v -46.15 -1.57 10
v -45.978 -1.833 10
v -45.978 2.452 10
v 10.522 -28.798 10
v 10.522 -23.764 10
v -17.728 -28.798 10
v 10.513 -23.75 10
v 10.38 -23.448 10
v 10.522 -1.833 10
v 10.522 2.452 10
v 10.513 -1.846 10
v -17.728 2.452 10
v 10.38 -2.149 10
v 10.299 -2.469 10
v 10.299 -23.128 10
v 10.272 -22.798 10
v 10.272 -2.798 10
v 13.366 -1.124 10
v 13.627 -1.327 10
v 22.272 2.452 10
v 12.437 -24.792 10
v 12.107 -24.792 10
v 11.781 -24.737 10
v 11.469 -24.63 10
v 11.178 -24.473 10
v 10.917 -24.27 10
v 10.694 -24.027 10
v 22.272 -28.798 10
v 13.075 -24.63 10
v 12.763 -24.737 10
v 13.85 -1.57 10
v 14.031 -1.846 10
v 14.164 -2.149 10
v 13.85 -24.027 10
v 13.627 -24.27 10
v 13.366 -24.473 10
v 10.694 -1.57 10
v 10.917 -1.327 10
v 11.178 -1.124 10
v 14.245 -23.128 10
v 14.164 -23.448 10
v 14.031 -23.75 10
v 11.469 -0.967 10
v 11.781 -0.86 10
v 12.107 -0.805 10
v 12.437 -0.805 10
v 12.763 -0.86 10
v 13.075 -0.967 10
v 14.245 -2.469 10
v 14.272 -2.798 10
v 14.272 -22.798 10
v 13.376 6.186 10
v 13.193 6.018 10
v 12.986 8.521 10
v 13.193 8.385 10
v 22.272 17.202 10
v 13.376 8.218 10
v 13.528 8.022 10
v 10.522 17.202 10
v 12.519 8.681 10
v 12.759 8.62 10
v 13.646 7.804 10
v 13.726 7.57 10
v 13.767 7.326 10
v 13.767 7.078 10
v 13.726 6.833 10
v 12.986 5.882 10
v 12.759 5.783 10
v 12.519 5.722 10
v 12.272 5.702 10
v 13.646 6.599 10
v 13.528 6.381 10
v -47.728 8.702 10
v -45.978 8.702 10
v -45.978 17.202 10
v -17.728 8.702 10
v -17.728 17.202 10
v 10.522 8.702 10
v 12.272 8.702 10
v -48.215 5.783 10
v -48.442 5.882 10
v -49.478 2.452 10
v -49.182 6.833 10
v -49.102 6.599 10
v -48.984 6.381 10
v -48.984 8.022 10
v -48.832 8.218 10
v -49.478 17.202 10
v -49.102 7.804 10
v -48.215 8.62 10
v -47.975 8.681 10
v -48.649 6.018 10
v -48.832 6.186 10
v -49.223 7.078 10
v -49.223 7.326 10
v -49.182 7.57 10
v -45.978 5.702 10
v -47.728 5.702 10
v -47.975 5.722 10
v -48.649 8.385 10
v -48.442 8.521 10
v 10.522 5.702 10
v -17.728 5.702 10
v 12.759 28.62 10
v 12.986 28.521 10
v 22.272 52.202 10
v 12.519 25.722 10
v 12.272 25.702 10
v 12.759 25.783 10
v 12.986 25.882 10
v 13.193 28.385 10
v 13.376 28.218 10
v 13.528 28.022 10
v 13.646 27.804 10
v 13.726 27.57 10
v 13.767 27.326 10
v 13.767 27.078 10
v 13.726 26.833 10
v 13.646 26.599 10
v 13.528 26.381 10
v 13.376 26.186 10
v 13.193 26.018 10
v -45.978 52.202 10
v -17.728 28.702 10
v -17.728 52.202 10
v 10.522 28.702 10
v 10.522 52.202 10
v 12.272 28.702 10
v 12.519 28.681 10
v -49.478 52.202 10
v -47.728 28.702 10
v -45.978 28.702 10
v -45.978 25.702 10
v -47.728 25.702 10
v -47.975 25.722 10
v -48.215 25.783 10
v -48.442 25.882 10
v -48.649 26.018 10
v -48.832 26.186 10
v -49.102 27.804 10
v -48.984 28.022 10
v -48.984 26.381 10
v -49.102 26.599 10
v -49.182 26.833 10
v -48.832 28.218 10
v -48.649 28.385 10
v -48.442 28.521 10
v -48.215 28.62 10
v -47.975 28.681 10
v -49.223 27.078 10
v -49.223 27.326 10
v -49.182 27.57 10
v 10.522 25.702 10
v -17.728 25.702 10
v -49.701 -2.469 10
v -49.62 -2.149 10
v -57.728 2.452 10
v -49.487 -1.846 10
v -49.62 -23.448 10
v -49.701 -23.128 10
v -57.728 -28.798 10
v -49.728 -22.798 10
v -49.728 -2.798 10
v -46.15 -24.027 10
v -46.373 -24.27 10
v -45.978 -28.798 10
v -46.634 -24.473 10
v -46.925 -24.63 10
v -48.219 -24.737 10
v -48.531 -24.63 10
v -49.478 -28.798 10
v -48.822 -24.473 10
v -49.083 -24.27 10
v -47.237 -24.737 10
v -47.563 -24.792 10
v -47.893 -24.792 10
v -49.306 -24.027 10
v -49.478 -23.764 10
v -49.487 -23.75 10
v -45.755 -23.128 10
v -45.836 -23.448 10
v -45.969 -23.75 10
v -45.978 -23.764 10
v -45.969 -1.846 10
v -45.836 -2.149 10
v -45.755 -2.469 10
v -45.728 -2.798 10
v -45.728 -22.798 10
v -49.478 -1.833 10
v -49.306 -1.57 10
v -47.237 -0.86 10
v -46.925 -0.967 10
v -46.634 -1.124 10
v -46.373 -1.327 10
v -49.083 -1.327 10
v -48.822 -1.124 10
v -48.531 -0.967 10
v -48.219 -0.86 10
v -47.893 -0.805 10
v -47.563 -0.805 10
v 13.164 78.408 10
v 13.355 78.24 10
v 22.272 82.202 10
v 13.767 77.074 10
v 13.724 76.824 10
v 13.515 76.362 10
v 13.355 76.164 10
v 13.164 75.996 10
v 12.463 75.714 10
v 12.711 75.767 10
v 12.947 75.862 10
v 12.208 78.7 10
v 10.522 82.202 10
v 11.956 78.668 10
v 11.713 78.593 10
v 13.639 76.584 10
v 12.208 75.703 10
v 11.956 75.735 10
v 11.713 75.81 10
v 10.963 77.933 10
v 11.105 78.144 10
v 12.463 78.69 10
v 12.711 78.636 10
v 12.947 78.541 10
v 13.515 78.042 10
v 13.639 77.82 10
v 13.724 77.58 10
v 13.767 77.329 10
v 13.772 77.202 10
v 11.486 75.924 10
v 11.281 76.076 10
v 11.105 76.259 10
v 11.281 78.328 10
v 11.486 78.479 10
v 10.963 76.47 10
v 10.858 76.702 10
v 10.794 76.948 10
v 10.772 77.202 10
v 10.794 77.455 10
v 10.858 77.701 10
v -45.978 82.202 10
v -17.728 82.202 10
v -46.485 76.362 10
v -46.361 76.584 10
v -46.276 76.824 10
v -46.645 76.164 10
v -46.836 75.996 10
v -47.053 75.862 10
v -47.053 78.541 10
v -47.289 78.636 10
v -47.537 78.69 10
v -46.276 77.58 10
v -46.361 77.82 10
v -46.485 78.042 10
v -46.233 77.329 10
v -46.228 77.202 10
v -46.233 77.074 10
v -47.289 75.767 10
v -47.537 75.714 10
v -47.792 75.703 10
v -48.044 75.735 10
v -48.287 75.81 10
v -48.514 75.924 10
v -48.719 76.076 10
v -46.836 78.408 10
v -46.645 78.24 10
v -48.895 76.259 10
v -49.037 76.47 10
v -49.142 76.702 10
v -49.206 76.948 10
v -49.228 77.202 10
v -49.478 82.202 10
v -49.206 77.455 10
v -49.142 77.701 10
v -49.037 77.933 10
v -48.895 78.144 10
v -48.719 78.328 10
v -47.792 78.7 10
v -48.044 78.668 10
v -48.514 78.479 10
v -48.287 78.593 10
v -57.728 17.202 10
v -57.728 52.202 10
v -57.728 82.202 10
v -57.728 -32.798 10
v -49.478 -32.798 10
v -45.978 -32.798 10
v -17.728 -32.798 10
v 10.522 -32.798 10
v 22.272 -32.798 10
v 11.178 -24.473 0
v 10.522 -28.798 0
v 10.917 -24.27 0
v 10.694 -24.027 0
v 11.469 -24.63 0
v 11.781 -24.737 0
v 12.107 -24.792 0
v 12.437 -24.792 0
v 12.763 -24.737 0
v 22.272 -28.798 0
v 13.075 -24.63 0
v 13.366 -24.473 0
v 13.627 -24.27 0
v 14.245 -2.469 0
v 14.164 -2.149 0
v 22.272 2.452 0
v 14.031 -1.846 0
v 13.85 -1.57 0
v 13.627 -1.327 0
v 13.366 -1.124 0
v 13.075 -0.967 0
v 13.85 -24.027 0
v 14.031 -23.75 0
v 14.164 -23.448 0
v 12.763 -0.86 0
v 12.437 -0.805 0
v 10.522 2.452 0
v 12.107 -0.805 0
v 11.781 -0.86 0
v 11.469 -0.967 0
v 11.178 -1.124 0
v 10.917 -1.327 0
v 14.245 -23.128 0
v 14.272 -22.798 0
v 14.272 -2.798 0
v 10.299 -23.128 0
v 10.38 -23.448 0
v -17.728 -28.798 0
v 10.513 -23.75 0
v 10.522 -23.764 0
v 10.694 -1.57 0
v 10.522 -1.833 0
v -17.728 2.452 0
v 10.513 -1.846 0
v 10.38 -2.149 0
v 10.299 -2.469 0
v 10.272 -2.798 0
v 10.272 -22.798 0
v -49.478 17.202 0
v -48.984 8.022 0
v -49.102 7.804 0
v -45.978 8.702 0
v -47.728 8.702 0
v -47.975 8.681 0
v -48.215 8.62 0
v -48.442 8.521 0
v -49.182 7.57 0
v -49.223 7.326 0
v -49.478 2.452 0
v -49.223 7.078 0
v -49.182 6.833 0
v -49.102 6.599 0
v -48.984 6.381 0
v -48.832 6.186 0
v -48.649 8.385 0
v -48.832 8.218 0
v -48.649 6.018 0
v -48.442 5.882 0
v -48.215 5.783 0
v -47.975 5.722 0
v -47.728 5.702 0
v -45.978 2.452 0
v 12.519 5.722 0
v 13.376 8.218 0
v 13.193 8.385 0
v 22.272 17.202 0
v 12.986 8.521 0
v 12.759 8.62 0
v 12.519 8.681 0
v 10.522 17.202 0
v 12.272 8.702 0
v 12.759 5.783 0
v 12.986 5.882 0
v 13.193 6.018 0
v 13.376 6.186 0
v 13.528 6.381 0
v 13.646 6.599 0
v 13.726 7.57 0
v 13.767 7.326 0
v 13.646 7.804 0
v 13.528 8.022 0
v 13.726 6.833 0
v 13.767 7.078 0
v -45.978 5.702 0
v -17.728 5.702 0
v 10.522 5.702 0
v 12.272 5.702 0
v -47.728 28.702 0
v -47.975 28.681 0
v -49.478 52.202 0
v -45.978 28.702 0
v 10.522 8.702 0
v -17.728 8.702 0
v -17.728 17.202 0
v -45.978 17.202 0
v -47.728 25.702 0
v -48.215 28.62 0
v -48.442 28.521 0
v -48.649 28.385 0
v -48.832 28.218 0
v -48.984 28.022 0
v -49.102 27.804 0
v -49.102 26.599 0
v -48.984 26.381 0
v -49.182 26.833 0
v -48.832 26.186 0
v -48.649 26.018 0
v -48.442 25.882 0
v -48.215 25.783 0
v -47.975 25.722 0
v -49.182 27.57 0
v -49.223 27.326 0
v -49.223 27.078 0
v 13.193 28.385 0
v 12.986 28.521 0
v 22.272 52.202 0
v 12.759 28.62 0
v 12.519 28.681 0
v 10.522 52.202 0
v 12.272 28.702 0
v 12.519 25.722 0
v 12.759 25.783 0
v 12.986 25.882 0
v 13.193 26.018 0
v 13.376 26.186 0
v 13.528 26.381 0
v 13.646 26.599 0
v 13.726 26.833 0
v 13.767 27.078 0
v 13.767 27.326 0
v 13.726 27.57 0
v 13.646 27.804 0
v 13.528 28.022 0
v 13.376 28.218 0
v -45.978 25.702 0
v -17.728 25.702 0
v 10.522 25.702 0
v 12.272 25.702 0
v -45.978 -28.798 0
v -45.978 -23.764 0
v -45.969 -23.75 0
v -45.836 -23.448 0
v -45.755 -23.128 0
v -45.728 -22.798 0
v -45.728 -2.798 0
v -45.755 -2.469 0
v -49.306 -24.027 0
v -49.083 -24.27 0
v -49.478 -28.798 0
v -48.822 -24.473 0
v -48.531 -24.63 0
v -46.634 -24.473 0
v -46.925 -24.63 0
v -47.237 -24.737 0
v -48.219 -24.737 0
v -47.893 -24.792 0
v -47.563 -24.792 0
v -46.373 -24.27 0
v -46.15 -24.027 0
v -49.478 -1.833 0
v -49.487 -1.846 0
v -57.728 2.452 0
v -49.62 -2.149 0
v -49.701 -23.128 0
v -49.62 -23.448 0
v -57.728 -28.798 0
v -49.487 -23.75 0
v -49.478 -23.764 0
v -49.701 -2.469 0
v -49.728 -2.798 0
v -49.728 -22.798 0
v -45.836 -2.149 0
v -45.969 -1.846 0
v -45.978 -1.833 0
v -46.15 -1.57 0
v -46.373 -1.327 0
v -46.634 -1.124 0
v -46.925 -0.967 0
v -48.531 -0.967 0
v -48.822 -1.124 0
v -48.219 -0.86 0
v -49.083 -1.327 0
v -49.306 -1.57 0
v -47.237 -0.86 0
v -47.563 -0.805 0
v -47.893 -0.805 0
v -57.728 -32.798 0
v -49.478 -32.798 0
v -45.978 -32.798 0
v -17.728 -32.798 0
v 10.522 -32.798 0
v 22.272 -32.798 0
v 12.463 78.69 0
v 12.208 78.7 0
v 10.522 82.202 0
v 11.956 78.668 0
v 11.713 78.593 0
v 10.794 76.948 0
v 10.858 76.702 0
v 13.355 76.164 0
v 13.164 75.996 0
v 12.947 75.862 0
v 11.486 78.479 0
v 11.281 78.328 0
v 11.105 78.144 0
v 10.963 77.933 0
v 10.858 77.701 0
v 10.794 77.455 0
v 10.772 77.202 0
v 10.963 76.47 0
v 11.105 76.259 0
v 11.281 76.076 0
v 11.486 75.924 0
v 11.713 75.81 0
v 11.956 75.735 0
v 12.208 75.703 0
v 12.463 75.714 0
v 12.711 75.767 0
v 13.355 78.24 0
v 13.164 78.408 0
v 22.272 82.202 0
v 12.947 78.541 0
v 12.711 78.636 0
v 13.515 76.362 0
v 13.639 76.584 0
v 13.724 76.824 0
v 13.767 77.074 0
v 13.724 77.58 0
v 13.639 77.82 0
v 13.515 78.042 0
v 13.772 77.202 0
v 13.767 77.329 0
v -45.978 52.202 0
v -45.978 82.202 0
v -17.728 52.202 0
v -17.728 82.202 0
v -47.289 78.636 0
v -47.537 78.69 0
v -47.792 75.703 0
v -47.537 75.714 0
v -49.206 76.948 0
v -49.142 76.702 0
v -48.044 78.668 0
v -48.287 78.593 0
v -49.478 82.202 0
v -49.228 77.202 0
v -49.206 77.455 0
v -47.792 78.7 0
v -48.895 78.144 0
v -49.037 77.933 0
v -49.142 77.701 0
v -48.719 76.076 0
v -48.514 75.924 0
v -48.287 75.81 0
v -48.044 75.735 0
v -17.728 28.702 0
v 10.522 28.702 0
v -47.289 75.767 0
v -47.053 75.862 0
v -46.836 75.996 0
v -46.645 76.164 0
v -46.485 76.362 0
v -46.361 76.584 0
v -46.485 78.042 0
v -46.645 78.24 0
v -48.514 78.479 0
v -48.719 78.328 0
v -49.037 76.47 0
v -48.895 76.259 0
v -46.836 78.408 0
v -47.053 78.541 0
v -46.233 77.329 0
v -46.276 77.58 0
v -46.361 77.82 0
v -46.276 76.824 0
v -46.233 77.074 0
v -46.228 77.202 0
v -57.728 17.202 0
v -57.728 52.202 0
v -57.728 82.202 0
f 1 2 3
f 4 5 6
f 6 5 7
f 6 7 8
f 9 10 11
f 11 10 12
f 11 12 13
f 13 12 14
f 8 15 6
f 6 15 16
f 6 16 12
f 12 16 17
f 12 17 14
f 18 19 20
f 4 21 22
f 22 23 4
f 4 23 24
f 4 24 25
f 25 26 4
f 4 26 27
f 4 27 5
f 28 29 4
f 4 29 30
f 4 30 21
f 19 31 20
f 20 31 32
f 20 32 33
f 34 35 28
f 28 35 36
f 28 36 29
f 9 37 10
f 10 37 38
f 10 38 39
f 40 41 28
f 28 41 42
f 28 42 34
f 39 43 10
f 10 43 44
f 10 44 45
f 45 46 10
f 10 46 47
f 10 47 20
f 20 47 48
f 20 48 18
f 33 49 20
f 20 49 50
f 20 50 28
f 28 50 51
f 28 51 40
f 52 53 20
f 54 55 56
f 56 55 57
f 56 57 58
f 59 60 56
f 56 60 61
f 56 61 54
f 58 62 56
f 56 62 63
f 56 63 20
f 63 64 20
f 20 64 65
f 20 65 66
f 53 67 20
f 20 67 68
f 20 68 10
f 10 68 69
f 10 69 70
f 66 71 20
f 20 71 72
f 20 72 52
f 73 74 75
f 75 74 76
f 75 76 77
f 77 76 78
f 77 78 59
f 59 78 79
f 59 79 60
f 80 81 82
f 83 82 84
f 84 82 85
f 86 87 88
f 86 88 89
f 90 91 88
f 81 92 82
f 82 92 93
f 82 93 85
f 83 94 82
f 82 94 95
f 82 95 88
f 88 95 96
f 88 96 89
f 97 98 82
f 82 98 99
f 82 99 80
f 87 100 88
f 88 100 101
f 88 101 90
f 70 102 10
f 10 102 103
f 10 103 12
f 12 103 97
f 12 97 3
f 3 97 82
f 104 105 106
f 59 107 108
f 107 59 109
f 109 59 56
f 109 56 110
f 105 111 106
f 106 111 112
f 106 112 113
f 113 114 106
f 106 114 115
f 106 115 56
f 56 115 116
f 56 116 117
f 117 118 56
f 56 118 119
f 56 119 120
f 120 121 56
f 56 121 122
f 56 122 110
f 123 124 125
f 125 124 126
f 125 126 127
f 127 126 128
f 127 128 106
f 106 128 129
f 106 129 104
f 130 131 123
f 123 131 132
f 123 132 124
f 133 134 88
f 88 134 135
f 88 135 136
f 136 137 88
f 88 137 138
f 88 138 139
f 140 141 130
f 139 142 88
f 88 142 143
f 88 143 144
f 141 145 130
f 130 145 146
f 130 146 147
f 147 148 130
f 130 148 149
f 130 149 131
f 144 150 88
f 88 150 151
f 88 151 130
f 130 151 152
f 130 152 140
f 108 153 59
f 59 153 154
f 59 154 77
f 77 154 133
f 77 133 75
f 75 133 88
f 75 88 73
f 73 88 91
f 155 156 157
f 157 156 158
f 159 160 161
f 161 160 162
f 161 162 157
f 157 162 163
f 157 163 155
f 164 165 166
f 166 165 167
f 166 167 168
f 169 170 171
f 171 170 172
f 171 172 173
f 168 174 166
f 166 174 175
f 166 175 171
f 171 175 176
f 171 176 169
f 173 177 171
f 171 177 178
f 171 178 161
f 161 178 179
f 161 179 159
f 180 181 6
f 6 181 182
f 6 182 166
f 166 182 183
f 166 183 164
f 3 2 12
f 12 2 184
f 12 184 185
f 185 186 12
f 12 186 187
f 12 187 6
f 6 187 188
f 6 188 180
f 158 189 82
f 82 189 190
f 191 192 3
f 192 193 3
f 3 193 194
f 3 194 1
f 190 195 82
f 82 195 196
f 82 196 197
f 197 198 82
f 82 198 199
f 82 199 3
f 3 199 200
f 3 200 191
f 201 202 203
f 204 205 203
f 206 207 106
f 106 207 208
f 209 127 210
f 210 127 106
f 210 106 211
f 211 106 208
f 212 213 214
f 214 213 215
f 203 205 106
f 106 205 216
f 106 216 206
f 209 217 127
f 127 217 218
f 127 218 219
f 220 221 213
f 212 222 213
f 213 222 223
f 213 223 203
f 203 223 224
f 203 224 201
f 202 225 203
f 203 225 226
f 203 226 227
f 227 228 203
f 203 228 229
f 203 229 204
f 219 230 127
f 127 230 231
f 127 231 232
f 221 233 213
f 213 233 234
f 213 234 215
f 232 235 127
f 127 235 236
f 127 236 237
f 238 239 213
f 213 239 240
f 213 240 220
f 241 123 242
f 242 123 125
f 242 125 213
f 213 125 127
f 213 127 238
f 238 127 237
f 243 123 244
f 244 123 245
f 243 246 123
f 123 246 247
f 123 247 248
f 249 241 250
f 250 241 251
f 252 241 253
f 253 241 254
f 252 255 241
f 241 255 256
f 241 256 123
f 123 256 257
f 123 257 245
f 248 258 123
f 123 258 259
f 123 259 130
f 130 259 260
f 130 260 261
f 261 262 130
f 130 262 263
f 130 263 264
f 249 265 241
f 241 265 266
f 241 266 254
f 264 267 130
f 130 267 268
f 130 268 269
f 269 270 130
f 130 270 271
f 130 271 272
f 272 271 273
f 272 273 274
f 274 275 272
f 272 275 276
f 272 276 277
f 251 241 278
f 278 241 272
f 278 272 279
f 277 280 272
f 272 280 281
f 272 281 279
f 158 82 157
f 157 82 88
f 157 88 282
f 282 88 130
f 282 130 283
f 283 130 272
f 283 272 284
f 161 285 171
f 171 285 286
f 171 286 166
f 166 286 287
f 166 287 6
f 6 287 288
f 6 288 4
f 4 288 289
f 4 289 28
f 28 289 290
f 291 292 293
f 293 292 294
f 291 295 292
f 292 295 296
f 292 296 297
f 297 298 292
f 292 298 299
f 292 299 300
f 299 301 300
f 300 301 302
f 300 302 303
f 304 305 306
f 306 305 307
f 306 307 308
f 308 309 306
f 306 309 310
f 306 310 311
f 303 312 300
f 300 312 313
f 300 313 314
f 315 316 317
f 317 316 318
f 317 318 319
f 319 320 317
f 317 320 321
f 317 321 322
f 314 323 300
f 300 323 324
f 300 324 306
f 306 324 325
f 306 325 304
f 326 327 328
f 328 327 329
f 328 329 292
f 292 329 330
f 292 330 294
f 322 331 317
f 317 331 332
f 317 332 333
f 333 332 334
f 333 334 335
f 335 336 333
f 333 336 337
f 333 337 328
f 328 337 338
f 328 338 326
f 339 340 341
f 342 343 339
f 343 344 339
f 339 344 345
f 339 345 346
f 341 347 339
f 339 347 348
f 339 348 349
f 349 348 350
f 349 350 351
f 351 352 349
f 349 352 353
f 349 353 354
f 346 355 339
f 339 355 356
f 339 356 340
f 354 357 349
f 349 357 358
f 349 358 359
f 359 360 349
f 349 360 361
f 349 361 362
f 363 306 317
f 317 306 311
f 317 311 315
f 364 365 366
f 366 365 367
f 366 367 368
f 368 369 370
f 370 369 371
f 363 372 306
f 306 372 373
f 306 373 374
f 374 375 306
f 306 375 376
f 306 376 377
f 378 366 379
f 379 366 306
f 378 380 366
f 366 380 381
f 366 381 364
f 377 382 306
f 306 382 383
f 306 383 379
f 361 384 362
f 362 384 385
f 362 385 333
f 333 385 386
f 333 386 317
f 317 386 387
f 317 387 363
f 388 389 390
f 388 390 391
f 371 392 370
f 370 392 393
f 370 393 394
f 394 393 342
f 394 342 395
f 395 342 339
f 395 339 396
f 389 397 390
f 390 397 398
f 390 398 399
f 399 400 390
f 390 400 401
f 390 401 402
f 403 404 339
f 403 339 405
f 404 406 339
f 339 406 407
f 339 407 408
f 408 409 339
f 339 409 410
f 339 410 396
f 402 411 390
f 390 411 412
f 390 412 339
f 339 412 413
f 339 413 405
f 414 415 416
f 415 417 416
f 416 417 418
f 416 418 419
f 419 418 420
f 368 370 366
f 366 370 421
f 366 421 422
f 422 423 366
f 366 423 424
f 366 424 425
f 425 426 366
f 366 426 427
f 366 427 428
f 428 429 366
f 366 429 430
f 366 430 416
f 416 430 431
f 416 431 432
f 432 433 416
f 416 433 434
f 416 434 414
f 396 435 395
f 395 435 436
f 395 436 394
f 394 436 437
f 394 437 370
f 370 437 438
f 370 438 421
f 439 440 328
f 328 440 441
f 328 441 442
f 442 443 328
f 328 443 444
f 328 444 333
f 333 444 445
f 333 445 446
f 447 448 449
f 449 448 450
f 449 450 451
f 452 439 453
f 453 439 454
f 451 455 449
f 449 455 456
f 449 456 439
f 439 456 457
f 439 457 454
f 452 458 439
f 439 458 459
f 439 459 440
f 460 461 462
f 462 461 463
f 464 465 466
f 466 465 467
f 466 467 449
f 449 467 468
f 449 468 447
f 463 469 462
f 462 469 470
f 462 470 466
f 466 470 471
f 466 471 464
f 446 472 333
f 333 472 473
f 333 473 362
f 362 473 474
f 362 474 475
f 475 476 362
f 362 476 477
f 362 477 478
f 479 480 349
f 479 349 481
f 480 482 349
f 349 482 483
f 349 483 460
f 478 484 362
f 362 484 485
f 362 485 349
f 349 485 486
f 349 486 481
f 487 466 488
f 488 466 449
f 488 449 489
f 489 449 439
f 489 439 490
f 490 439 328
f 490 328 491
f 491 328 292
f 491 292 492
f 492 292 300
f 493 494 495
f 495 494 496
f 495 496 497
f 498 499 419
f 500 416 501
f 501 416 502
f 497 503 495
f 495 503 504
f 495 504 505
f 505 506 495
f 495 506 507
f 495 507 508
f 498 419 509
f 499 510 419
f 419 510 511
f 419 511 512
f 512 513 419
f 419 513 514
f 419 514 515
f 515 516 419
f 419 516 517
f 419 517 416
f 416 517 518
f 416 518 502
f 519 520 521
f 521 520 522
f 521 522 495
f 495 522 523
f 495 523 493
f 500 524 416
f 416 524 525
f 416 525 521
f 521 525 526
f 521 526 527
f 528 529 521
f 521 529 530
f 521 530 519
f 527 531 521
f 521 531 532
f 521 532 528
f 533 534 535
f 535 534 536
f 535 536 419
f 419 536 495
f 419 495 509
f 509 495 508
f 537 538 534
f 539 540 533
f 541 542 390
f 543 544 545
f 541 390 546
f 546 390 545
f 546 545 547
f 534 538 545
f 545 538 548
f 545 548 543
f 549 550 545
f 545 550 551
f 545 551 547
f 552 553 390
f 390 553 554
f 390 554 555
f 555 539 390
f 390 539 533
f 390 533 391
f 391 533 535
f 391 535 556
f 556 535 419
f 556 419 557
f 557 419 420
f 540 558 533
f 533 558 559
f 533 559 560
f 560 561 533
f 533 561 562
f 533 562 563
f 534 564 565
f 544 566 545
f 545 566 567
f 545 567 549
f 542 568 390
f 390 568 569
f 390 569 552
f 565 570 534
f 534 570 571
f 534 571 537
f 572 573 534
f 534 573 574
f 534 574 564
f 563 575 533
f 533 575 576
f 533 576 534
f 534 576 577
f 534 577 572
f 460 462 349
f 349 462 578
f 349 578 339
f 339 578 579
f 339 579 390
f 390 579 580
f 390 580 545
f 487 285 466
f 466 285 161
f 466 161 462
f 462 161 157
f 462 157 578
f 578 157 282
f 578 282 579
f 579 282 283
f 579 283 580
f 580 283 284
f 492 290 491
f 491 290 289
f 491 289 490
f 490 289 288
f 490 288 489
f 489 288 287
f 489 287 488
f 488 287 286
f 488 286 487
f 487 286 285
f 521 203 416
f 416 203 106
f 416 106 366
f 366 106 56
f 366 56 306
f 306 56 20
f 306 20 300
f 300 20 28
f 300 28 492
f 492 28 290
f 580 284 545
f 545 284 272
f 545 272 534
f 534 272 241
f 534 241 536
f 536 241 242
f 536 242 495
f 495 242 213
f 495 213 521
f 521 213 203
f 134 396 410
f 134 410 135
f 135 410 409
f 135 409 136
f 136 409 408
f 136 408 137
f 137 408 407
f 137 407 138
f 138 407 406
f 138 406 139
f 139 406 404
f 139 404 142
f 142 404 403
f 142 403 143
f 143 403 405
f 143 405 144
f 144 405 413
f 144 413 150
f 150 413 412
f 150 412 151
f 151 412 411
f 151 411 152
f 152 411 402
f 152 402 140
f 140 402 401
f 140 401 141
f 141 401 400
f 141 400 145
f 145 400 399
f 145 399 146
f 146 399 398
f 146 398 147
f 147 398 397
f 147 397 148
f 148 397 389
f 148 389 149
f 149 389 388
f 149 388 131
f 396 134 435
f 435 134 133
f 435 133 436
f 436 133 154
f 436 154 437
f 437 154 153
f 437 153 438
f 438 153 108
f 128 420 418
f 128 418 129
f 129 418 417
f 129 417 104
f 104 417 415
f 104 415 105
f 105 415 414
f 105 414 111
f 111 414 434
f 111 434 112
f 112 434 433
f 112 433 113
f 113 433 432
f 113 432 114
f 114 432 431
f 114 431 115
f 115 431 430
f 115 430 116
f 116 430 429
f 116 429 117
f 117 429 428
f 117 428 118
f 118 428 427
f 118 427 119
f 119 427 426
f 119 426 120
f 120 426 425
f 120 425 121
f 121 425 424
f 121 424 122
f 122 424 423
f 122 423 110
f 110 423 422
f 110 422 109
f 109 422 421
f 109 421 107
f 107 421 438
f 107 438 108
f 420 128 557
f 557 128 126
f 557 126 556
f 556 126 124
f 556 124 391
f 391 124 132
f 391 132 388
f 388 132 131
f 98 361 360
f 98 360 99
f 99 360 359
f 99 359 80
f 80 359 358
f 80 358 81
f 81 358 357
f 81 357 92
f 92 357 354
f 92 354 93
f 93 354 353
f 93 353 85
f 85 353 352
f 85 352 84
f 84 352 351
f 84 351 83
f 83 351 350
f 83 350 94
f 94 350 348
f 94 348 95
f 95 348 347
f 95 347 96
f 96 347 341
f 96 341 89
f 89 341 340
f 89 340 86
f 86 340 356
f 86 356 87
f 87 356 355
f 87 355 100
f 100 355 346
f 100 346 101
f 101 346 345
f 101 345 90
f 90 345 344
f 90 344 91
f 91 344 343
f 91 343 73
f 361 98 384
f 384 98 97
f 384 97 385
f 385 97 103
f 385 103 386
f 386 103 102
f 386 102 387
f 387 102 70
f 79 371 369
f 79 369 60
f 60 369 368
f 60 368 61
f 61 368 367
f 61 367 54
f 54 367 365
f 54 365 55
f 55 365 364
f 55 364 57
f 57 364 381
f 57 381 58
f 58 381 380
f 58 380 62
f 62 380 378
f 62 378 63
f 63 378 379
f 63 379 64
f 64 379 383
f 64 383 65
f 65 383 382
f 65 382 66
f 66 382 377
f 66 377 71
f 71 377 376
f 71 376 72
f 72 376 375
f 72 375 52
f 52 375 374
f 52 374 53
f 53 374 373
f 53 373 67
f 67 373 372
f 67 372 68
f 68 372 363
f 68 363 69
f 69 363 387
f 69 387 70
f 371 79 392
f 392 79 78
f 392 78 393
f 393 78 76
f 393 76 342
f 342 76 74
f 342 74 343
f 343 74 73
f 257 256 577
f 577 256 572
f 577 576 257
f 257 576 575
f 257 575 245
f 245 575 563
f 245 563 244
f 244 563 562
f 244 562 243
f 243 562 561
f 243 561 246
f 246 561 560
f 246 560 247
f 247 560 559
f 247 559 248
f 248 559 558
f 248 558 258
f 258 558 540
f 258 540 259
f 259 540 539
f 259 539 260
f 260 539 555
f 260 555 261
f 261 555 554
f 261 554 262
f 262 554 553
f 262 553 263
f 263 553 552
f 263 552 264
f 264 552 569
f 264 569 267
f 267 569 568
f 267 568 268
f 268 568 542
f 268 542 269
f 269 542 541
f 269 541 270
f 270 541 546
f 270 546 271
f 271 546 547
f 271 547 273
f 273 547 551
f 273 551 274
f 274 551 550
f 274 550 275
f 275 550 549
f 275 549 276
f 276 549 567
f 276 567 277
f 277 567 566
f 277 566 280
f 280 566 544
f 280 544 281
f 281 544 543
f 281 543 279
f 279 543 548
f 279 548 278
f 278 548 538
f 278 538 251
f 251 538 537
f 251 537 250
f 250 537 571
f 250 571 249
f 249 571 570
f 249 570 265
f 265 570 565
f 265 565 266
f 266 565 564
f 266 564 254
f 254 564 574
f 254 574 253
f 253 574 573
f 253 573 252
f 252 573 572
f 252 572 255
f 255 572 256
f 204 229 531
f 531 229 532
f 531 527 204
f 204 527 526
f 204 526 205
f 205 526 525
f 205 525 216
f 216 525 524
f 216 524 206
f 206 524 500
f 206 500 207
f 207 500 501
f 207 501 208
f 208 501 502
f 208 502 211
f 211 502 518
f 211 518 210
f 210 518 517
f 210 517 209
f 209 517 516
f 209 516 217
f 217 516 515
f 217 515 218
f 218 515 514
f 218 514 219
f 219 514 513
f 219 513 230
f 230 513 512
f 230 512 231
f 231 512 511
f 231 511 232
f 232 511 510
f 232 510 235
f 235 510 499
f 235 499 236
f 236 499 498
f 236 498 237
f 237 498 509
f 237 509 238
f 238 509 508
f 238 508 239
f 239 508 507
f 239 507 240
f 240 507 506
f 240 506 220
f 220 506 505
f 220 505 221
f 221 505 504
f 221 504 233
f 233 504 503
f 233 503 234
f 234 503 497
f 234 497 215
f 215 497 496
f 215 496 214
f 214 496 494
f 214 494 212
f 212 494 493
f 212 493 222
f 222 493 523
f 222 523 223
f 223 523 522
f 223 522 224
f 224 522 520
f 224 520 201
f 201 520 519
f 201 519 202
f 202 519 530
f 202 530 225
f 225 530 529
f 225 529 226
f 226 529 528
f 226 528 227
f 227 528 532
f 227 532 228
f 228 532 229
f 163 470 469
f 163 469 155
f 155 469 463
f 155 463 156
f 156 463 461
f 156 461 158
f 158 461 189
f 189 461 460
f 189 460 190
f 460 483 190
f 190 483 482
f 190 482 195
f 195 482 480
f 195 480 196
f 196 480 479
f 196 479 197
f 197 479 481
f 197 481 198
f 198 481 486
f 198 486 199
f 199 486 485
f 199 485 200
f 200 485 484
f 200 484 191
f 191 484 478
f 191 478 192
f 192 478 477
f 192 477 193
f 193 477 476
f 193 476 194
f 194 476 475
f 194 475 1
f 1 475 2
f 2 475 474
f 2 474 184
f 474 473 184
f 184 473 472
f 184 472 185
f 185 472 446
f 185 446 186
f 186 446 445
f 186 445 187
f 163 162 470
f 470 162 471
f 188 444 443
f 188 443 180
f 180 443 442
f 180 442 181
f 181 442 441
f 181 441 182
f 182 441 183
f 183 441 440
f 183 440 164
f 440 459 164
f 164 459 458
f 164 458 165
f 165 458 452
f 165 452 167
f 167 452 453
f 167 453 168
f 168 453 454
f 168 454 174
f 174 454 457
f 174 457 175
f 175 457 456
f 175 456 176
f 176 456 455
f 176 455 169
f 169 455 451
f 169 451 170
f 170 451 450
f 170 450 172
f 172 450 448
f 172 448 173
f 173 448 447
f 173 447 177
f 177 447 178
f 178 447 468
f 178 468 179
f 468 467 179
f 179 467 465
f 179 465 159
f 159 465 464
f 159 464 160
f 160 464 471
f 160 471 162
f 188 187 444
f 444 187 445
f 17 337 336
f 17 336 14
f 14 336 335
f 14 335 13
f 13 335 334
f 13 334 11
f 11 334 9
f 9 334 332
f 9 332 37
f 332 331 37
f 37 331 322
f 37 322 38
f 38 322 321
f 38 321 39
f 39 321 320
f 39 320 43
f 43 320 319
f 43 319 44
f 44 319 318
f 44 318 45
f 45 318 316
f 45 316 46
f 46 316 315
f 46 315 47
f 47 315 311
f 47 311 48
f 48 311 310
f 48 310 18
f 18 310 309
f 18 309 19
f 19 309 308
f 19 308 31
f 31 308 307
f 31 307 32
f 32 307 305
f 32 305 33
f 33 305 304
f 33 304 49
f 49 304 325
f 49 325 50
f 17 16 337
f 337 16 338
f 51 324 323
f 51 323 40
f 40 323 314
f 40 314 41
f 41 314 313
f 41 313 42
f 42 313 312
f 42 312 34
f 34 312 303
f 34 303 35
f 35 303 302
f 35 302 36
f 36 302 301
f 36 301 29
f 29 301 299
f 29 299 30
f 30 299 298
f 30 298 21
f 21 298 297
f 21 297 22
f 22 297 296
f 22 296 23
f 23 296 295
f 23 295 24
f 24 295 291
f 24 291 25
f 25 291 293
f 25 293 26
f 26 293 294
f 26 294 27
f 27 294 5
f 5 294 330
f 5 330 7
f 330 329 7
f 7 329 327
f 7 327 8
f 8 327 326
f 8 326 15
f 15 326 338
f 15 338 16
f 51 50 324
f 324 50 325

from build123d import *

# Parameters (mm, degrees)
ESQUISSE1_W        = 80
ESQUISSE1_H        = 115
ESQUISSE1_R        = 1.5
BOSS_EXTRU_1_DEPTH = 10


with BuildPart() as part:
    # Esquisse1 → Boss.-Extru.1 (new body)
    with BuildSketch(Plane.XY):
        with Locations((-17.727954042, 24.701649019)):
            Rectangle(ESQUISSE1_W, ESQUISSE1_H)
        with Locations((-47.727954042, 77.201649019)):
            Circle(ESQUISSE1_R, mode=Mode.SUBTRACT)
        with Locations((12.272045958, 77.201649019)):
            Circle(ESQUISSE1_R, mode=Mode.SUBTRACT)
        with BuildLine():
            Line((-47.727954042, 28.701649019), (12.272045958, 28.701649019))
            ThreePointArc((12.272045958, 28.701649019), (13.772045958, 27.201649019), (12.272045958, 25.701649019))
            Line((12.272045958, 25.701649019), (-47.727954042, 25.701649019))
            ThreePointArc((-47.727954042, 25.701649019), (-49.227954042, 27.201649019), (-47.727954042, 28.701649019))
        make_face(mode=Mode.SUBTRACT)
        with BuildLine():
            Line((-47.727954042, 8.701649019), (12.272045958, 8.701649019))
            ThreePointArc((12.272045958, 8.701649019), (13.772045958, 7.201649019), (12.272045958, 5.701649019))
            Line((12.272045958, 5.701649019), (-47.727954042, 5.701649019))
            ThreePointArc((-47.727954042, 5.701649019), (-49.227954042, 7.201649019), (-47.727954042, 8.701649019))
        make_face(mode=Mode.SUBTRACT)
        with BuildLine():
            Line((-49.727954042, -22.798350981), (-49.727954042, -2.798350981))
            ThreePointArc((-49.727954042, -2.798350981), (-47.727954042, -0.798350981), (-45.727954042, -2.798350981))
            Line((-45.727954042, -2.798350981), (-45.727954042, -22.798350981))
            ThreePointArc((-45.727954042, -22.798350981), (-47.727954042, -24.798350981), (-49.727954042, -22.798350981))
        make_face(mode=Mode.SUBTRACT)
        with BuildLine():
            Line((10.272045958, -2.798350981), (10.272045958, -22.798350981))
            ThreePointArc((10.272045958, -22.798350981), (12.272045958, -24.798350981), (14.272045958, -22.798350981))
            Line((14.272045958, -22.798350981), (14.272045958, -2.798350981))
            ThreePointArc((14.272045958, -2.798350981), (12.272045958, -0.798350981), (10.272045958, -2.798350981))
        make_face(mode=Mode.SUBTRACT)
    extrude(amount=BOSS_EXTRU_1_DEPTH)


solid = part.part
